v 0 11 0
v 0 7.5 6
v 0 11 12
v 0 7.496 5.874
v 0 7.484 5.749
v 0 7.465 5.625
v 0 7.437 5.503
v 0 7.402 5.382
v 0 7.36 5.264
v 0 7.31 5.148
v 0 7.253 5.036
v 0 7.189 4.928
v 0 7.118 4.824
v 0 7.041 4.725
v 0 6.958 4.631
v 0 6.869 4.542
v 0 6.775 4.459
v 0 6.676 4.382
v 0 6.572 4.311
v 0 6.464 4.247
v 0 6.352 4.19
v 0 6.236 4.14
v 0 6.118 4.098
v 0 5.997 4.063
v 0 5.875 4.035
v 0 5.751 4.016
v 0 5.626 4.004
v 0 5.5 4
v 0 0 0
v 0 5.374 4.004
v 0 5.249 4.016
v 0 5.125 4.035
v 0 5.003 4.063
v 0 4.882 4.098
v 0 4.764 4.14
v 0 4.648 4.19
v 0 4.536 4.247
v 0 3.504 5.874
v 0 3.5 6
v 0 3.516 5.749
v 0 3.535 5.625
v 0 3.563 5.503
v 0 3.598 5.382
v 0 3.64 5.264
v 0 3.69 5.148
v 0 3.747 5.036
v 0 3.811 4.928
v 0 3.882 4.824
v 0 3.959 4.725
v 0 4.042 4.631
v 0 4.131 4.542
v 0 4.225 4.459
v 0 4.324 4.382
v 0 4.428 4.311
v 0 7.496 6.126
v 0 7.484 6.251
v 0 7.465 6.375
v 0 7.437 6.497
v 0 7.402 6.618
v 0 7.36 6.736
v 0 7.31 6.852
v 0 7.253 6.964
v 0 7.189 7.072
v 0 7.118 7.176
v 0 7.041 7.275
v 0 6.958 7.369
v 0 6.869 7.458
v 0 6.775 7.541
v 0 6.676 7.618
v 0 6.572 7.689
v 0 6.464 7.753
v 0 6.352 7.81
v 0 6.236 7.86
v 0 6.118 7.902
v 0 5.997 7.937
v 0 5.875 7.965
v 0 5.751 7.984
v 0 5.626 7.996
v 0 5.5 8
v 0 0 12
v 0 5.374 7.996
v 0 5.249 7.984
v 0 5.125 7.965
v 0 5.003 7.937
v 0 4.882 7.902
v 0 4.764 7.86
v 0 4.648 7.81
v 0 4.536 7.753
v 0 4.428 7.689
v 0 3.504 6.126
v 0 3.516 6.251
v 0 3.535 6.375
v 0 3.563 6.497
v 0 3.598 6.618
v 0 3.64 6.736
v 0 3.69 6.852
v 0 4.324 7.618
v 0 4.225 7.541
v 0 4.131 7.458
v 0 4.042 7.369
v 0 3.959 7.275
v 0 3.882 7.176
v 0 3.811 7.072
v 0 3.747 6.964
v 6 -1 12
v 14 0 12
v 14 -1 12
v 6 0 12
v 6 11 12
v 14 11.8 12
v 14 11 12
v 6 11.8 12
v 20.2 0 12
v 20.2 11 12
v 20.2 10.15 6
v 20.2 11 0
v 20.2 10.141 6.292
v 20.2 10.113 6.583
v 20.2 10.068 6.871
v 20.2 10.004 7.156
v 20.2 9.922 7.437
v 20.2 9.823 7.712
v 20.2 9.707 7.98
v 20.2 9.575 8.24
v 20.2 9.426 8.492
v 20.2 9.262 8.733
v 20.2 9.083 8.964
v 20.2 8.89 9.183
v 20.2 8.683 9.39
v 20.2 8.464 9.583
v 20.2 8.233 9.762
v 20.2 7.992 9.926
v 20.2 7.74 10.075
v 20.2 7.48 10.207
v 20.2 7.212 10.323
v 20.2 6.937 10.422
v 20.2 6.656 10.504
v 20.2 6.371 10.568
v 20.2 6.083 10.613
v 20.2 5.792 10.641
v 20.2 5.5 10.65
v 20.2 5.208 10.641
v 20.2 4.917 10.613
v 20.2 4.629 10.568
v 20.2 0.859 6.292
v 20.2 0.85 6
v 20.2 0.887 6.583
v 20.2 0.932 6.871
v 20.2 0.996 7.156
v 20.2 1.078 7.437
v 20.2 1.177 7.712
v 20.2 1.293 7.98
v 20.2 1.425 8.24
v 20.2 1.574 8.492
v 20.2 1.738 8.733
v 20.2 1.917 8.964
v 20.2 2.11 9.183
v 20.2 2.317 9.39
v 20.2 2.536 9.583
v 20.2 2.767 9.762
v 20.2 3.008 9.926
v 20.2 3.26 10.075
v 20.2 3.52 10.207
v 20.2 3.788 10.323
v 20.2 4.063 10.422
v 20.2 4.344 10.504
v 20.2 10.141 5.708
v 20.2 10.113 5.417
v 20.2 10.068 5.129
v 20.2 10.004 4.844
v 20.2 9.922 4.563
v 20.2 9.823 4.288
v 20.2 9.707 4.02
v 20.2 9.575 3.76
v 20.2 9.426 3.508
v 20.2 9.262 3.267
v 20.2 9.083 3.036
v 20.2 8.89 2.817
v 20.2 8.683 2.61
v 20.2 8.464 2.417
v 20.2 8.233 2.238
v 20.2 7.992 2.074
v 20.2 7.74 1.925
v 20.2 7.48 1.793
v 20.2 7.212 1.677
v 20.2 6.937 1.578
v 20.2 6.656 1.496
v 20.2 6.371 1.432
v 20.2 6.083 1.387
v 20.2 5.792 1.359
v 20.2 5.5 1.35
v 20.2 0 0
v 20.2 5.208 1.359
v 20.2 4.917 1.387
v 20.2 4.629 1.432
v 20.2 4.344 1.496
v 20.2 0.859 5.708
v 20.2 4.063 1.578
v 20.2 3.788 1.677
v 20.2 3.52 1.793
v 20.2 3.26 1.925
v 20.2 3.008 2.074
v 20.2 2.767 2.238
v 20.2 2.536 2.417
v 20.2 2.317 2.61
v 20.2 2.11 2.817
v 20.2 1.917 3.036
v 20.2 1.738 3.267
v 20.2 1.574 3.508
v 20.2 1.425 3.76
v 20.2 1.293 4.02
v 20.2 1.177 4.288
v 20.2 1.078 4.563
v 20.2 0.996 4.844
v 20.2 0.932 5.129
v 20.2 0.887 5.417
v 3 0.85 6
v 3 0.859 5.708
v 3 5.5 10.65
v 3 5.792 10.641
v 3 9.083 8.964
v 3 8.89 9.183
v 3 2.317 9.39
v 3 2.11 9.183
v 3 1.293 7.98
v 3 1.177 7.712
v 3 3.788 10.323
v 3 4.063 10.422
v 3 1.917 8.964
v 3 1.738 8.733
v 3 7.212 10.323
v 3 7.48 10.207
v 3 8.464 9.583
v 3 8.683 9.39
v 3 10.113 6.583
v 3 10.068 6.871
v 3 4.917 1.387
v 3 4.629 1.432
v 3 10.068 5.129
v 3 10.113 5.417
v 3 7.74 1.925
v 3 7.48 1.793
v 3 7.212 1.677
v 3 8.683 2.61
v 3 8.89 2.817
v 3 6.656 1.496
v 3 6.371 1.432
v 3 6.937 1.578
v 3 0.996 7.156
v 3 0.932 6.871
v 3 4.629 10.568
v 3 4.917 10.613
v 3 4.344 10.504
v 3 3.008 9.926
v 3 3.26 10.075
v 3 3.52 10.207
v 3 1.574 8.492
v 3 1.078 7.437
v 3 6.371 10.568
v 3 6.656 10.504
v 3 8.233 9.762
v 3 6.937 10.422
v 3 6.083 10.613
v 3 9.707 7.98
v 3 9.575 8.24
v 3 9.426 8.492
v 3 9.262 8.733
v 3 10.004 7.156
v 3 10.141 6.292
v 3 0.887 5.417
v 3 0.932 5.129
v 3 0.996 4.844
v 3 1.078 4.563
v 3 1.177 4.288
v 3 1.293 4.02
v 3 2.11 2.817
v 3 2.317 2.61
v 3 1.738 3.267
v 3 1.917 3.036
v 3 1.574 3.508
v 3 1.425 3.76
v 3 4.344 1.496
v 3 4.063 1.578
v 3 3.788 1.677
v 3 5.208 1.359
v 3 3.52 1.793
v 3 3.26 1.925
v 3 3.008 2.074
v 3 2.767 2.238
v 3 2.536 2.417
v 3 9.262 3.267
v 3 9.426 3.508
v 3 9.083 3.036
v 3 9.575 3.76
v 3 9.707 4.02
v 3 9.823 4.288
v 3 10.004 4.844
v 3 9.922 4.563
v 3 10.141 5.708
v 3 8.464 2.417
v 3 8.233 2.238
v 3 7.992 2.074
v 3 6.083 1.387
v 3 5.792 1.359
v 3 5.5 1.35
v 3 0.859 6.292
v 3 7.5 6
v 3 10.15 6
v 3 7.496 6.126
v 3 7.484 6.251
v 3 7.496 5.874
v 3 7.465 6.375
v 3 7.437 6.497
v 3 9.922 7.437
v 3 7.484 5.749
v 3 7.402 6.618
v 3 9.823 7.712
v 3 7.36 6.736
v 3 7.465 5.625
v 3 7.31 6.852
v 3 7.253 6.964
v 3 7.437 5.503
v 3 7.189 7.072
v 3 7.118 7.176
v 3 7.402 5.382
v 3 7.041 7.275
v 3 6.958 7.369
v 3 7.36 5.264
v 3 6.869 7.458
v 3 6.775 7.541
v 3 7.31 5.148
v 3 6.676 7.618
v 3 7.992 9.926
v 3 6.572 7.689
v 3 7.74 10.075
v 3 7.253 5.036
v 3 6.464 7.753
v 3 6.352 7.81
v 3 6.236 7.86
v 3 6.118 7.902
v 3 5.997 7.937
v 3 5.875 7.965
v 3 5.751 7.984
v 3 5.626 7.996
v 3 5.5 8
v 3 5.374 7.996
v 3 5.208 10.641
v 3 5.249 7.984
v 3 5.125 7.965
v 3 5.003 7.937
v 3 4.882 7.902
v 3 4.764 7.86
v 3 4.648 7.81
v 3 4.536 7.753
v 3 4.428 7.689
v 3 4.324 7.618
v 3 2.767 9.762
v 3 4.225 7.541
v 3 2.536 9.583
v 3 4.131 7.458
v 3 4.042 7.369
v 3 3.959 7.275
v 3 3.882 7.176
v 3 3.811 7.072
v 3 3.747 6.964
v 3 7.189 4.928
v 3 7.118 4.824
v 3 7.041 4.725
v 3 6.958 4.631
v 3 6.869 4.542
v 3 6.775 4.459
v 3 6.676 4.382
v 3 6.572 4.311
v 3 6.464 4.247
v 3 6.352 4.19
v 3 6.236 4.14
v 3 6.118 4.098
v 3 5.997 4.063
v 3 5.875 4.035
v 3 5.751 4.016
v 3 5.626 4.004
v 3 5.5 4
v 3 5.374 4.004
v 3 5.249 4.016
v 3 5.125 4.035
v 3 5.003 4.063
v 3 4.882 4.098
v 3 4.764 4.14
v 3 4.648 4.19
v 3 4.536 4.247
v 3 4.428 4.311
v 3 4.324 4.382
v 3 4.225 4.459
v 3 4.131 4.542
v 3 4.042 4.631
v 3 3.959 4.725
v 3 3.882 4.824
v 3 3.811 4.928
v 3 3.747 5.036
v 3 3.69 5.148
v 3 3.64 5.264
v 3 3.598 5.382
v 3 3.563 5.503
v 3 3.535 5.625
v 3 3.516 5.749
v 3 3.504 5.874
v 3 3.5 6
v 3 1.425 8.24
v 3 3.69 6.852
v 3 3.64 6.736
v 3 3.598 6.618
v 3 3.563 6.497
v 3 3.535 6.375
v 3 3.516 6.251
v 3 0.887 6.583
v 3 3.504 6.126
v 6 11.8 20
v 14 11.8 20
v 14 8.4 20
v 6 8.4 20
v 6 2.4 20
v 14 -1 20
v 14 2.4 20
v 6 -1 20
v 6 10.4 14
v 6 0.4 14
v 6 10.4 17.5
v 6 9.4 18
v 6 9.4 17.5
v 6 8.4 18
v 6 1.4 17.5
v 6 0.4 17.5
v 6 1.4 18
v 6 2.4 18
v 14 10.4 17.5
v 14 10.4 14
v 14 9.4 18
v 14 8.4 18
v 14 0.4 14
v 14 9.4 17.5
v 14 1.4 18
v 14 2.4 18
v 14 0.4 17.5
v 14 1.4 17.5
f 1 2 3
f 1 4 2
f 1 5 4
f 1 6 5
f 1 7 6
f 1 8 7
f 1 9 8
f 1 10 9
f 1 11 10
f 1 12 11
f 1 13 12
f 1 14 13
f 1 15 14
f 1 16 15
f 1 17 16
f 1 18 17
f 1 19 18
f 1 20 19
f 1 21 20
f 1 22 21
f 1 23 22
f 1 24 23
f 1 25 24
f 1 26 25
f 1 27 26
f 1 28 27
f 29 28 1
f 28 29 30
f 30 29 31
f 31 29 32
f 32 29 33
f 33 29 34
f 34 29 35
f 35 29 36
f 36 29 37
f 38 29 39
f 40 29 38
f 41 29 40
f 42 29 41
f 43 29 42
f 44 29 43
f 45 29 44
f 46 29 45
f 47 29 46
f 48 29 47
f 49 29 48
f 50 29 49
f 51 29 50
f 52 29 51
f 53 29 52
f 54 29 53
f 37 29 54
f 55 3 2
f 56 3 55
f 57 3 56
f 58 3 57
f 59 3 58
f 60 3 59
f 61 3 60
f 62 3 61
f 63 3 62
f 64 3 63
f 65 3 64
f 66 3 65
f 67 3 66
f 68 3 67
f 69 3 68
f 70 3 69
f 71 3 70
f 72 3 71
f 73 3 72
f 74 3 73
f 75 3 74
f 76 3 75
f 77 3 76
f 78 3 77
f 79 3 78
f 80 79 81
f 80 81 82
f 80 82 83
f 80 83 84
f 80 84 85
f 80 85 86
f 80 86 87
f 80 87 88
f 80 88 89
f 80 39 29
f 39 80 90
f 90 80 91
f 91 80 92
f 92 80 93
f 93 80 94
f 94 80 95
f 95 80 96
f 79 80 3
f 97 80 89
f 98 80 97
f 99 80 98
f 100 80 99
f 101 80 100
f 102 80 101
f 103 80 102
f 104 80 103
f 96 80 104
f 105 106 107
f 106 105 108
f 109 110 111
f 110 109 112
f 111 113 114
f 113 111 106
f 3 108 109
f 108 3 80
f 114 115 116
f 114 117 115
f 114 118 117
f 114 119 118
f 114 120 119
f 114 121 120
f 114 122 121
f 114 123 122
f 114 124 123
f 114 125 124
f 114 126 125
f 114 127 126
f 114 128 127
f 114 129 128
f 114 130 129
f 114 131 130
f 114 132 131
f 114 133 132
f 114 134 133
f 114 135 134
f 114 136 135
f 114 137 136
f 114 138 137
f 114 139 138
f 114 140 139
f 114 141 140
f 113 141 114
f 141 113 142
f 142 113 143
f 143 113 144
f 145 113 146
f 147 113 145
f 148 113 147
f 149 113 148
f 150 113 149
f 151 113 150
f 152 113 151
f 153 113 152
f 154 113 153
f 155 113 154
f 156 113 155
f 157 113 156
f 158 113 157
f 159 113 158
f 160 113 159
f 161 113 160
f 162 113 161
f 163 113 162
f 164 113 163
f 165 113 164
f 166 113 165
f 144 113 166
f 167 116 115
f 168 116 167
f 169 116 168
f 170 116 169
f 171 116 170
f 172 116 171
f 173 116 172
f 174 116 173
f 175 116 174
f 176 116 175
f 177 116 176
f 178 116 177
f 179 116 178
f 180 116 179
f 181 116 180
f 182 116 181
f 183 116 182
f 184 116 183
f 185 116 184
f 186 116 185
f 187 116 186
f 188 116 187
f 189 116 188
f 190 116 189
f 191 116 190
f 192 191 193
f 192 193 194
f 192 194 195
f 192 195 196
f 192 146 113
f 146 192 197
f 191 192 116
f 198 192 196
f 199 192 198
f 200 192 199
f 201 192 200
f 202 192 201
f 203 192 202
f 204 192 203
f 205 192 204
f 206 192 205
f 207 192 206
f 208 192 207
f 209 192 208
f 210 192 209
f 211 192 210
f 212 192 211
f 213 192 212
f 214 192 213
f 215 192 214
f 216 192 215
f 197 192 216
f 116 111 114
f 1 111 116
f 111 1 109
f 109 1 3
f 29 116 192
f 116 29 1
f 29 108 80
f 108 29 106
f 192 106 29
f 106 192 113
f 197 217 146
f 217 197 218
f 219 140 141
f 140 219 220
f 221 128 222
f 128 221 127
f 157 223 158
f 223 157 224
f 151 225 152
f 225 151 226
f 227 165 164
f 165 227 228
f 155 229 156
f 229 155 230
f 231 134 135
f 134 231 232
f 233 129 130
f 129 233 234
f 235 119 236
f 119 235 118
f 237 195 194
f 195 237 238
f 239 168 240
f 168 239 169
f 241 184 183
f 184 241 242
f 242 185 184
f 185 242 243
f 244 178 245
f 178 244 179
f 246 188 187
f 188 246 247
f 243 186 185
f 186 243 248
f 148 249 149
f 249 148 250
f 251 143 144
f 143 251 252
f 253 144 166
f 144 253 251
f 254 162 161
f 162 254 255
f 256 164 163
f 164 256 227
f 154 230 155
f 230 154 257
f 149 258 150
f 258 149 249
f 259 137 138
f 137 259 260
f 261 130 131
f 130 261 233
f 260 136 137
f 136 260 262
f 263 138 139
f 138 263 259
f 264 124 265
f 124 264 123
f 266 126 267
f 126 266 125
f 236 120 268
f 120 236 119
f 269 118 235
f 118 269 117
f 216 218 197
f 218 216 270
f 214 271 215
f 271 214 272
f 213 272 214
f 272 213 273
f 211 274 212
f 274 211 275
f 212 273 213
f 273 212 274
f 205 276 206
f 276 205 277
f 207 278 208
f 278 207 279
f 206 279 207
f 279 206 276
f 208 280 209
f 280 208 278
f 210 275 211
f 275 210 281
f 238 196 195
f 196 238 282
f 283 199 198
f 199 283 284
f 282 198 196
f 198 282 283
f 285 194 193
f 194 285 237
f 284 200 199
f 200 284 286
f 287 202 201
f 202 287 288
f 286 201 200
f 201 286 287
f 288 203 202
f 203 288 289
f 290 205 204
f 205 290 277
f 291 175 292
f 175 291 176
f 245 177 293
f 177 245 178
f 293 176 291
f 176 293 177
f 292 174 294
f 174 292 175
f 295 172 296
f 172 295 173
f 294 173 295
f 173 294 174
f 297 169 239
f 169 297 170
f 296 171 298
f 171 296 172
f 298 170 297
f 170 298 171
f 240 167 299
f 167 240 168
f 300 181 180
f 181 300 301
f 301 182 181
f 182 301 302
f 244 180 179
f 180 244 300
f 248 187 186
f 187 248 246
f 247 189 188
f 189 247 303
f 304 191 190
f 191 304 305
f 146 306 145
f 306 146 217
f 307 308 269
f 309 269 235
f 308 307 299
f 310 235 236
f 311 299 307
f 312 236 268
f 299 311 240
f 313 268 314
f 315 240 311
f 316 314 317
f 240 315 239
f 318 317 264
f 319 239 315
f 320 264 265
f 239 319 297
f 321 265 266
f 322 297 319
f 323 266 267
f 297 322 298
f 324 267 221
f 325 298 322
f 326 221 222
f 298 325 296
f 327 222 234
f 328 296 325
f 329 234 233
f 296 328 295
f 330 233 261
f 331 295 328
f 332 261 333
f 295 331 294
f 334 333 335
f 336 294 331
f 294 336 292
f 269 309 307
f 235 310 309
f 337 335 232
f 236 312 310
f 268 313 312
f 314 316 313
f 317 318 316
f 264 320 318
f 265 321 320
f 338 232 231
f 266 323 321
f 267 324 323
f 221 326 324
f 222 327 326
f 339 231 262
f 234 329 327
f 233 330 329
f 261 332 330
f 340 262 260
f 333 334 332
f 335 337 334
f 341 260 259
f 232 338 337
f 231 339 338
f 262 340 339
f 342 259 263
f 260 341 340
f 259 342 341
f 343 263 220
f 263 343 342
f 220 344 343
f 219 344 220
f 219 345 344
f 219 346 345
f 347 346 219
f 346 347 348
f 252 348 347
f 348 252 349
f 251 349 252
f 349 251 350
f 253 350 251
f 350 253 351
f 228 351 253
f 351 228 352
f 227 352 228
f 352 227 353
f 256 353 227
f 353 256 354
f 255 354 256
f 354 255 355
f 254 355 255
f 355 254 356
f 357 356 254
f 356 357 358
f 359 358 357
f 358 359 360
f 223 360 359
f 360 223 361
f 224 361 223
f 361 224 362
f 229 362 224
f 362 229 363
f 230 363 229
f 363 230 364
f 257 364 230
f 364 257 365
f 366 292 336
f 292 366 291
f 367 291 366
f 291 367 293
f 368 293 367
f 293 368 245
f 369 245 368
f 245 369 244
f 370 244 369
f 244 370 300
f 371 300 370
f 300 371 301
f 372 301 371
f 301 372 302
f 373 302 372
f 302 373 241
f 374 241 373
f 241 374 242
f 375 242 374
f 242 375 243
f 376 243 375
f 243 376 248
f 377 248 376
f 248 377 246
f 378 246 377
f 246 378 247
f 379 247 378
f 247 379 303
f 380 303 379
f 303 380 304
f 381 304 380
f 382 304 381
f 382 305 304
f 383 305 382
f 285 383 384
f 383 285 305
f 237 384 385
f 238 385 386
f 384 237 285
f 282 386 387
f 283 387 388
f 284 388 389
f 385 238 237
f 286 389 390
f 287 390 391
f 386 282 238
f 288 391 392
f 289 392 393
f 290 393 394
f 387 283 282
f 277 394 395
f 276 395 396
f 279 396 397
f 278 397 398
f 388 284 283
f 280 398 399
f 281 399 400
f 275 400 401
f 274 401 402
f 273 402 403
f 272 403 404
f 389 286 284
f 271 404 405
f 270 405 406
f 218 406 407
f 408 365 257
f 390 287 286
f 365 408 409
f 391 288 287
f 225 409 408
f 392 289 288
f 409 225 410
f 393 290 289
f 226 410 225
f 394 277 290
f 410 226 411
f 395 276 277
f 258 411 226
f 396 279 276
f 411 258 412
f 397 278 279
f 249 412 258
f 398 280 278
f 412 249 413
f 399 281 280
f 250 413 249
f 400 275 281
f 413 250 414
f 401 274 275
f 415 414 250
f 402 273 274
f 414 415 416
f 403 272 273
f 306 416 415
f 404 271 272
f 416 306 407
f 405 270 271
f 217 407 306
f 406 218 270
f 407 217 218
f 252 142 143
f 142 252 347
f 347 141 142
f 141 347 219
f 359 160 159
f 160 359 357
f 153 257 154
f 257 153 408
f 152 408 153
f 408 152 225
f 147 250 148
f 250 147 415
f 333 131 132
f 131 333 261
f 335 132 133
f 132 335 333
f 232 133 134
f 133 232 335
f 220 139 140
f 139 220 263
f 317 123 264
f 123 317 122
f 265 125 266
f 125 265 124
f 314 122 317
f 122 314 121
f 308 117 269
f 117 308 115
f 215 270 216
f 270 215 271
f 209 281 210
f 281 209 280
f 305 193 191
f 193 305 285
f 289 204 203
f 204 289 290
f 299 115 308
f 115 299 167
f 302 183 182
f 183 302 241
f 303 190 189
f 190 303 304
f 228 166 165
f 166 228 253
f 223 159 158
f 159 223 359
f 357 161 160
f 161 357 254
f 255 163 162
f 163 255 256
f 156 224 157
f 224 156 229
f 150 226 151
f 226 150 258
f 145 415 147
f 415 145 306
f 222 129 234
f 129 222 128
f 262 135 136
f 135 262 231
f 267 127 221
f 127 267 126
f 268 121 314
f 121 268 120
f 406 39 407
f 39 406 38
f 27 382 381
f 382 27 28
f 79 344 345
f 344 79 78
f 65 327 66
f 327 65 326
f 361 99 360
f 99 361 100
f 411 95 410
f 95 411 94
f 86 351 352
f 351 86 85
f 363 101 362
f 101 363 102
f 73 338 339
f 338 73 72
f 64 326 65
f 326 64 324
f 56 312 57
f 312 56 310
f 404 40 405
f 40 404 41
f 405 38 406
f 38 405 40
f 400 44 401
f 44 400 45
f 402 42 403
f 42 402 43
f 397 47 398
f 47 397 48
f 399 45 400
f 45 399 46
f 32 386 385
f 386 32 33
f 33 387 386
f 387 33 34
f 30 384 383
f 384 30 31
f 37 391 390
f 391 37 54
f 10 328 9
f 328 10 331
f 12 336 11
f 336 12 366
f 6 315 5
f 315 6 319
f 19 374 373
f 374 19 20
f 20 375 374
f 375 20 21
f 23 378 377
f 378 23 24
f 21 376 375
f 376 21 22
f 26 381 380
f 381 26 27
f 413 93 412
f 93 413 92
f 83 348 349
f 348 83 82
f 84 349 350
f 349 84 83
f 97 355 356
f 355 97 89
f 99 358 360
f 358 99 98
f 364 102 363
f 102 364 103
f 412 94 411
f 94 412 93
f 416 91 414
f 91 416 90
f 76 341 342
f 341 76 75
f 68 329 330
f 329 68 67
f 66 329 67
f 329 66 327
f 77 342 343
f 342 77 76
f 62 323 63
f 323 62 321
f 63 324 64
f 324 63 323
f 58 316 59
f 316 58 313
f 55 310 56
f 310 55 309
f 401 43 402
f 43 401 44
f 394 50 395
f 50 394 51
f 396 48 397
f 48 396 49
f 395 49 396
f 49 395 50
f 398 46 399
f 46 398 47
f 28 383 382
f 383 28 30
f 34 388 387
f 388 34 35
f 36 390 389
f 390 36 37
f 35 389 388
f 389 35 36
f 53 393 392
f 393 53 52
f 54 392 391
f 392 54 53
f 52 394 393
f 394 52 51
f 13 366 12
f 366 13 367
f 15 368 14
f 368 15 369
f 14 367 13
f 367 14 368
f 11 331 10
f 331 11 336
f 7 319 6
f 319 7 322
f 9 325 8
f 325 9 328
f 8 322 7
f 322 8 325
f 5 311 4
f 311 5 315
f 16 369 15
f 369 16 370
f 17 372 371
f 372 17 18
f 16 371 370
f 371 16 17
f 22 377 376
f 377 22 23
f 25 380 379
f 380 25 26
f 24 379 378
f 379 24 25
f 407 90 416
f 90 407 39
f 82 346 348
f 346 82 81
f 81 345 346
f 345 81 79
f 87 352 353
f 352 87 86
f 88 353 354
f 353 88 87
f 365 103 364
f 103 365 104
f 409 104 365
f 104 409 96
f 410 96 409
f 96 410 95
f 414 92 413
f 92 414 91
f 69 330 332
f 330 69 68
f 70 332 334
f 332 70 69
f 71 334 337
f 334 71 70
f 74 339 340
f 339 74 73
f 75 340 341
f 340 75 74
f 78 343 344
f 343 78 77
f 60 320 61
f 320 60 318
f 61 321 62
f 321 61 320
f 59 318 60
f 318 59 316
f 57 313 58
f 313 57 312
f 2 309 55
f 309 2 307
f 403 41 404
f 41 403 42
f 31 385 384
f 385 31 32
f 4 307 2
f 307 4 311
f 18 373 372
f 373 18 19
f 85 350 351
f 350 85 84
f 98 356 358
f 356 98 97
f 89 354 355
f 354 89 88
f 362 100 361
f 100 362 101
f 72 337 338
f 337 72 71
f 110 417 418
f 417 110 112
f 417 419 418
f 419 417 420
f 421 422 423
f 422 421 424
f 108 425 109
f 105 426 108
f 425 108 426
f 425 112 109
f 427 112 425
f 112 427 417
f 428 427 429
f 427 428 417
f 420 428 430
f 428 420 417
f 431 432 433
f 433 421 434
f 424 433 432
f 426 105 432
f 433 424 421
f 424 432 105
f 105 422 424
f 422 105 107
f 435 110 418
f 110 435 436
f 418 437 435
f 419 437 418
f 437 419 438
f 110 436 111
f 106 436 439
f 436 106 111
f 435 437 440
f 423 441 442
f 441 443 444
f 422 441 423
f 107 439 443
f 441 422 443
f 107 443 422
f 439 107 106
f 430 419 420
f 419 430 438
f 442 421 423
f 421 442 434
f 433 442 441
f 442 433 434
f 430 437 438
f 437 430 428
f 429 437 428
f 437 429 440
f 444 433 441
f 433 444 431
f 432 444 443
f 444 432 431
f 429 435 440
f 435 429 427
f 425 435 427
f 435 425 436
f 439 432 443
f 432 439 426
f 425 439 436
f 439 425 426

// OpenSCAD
difference(){
cube([20.2,11,12],0);
rotate([-90,0,-90])
translate([-5.5,-6,3])
cylinder(20.43,4.65,4.65,0,$fn=100);
    rotate ([-90,0,-90])
translate([-5.5,-6,0])
cylinder(5,2,2,0,$fn=100);
}

templeHeight = 10;
totalHeight = 12.8;
ridgeHeight=8;
gapHeight=6;
UpHeight=12;

difference(){
    rotate([0,0,90])
    translate([-1,-14,UpHeight]) 
    cube([totalHeight,8,8],0);
     rotate ([0,0,90])
     translate([0,0,UpHeight])
    translate([(totalHeight-gapHeight)/2-1,-14,6])
   
cube([gapHeight,8,2],0);
     rotate ([0,0,90])
    translate ([(totalHeight-ridgeHeight)/2-1,-14,5.5])
translate([0,0,UpHeight])
  
cube([ridgeHeight,8 ,0.5],0);
     rotate ([0,0,90])
translate ([(totalHeight-templeHeight)/2-1,-14,2])
translate([0,0,UpHeight])
   
cube([templeHeight, 8,3.5],0);
    
}
